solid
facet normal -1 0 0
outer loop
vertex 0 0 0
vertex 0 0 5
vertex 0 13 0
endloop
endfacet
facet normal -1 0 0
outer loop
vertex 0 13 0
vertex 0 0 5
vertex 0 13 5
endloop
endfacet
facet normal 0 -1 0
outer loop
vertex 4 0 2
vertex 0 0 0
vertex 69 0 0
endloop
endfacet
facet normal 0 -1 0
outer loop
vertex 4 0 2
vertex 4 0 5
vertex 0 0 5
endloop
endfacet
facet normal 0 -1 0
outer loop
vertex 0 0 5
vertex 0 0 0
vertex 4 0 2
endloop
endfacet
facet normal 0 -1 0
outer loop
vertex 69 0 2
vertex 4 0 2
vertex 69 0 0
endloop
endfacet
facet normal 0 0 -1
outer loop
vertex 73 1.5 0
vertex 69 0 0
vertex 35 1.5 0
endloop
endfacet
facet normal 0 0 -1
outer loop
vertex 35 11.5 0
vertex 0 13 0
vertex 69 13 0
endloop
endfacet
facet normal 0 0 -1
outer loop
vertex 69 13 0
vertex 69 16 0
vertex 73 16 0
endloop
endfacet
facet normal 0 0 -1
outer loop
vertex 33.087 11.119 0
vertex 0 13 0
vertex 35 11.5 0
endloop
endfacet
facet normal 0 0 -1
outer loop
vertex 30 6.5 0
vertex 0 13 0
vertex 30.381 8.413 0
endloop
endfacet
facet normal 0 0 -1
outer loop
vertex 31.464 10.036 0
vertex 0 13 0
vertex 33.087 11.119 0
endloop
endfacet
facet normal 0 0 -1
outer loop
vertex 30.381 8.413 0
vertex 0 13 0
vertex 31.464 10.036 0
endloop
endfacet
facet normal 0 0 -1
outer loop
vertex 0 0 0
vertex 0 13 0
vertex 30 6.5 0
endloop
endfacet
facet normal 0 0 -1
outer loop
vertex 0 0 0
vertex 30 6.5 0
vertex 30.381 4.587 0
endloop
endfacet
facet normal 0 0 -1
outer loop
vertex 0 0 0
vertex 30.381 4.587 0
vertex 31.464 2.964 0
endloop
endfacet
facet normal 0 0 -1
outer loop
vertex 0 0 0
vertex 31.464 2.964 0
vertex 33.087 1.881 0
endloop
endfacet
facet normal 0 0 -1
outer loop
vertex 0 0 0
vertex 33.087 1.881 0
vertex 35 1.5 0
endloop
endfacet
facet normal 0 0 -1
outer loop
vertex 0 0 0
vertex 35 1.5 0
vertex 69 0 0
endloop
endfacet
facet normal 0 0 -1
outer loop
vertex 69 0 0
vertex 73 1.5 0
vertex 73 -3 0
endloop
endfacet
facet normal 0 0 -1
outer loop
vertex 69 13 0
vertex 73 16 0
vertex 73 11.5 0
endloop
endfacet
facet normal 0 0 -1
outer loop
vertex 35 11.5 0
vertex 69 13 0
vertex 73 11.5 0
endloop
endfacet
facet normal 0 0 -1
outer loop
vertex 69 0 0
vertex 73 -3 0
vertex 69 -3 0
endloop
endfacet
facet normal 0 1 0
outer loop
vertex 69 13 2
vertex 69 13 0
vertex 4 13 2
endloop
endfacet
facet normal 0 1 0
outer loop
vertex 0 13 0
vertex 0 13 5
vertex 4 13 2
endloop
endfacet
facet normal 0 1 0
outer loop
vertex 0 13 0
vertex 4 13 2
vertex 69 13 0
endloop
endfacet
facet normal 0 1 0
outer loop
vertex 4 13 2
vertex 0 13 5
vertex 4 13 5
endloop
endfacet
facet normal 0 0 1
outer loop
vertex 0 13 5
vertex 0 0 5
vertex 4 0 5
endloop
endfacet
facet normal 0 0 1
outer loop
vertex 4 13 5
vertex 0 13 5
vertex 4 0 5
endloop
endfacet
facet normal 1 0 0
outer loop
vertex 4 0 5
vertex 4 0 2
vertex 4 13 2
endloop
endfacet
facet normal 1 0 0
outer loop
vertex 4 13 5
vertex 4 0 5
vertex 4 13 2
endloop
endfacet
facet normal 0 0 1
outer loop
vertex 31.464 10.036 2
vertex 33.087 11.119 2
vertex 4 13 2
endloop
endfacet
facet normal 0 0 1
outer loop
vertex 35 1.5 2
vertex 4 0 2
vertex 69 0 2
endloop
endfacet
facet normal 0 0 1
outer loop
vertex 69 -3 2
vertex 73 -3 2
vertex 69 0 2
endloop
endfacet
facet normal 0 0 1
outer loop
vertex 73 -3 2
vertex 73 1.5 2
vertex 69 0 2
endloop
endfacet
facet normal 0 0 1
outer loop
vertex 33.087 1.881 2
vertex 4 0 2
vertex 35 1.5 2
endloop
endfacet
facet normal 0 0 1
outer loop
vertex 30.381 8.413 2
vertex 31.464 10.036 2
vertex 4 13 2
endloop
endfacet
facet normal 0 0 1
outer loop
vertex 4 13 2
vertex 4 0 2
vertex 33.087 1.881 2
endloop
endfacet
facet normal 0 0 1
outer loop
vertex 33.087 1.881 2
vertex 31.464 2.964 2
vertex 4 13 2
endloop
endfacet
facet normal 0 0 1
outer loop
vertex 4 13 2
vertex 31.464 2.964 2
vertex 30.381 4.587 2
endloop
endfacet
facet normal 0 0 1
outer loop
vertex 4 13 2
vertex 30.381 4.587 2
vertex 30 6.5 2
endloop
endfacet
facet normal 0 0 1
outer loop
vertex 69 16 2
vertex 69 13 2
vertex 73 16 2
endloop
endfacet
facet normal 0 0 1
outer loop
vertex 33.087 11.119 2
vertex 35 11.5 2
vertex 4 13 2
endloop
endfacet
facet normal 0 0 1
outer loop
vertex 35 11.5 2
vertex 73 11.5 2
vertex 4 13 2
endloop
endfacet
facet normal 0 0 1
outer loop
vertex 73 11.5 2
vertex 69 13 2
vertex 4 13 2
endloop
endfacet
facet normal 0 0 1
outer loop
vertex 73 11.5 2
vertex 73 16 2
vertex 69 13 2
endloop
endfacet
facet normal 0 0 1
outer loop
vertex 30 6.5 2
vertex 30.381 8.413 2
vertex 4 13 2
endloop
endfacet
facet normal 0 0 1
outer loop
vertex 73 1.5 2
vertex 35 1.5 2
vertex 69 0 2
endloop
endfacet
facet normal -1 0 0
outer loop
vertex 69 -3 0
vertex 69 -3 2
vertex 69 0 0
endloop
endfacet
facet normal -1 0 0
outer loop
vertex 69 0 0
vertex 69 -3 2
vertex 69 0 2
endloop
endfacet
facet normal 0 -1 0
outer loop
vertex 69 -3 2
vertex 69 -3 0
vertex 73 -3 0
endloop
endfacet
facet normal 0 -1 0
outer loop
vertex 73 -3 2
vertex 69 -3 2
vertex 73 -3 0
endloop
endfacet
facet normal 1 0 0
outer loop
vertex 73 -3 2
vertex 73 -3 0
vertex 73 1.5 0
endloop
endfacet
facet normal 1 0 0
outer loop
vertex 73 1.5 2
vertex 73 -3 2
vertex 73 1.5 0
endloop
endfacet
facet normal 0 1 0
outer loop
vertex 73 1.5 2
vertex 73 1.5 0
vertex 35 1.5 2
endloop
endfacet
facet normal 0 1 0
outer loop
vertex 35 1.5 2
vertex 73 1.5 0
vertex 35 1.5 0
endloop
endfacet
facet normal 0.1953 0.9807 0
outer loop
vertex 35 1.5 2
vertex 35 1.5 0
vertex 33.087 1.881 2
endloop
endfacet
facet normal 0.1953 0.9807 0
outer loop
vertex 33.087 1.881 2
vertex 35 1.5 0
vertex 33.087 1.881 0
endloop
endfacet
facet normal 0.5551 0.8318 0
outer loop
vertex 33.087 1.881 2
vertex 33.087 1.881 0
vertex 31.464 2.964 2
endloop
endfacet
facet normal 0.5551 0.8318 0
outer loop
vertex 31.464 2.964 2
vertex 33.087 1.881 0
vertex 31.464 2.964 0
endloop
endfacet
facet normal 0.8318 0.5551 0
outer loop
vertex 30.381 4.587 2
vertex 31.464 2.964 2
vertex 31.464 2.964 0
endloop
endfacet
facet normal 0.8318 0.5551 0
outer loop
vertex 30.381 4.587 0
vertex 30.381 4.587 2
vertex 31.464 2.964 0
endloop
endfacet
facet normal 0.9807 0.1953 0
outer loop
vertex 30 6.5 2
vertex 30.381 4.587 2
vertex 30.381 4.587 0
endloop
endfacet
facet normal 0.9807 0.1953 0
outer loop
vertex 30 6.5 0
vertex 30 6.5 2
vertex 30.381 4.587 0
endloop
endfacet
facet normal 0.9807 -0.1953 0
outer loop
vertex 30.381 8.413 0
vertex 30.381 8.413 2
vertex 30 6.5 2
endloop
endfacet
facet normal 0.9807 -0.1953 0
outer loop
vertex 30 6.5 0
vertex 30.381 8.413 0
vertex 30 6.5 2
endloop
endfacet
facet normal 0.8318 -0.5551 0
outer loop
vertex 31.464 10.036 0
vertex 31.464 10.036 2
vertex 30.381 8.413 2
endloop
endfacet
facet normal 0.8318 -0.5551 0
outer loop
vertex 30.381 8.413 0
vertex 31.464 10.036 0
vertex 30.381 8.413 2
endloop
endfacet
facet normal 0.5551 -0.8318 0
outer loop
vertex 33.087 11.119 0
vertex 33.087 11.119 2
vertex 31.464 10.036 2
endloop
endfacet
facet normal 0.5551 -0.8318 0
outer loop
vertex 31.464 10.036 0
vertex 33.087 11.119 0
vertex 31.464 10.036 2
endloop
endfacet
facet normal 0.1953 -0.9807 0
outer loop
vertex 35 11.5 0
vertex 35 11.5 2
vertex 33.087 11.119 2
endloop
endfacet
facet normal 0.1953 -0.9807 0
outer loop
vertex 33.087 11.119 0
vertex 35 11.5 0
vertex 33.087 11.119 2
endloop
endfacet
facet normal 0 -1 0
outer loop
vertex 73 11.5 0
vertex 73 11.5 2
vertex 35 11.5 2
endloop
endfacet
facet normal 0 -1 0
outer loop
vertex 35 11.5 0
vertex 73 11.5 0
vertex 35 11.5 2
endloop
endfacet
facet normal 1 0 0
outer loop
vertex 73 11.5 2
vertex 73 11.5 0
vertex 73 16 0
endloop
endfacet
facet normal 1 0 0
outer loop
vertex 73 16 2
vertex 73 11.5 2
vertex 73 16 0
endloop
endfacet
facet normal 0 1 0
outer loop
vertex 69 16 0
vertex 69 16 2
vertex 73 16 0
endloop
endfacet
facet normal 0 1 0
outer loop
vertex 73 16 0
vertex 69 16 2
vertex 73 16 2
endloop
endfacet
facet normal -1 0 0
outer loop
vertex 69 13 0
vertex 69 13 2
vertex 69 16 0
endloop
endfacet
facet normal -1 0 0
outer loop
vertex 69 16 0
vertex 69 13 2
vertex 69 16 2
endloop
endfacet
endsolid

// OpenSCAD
//Battery pack clip
//for SM-S4303R cont. rot. servos
//JGH 16/12/2013


difference(){

	union(){
		cube ([73, 13, 2]);		//Main base
		cube ([4, 13, 5]);		//Tope
		
		translate([69, -3, 0])	//Clip
		cube ([4, 19, 2]);
	}


	//Cylinder subtraction
	translate([35, 6.5, 0])
	cylinder(r=5, h=20, center=true);
	
	//Cube subtraction
	translate([35+20,6.5,0])
	cube([40,10,20], center=true);
}
